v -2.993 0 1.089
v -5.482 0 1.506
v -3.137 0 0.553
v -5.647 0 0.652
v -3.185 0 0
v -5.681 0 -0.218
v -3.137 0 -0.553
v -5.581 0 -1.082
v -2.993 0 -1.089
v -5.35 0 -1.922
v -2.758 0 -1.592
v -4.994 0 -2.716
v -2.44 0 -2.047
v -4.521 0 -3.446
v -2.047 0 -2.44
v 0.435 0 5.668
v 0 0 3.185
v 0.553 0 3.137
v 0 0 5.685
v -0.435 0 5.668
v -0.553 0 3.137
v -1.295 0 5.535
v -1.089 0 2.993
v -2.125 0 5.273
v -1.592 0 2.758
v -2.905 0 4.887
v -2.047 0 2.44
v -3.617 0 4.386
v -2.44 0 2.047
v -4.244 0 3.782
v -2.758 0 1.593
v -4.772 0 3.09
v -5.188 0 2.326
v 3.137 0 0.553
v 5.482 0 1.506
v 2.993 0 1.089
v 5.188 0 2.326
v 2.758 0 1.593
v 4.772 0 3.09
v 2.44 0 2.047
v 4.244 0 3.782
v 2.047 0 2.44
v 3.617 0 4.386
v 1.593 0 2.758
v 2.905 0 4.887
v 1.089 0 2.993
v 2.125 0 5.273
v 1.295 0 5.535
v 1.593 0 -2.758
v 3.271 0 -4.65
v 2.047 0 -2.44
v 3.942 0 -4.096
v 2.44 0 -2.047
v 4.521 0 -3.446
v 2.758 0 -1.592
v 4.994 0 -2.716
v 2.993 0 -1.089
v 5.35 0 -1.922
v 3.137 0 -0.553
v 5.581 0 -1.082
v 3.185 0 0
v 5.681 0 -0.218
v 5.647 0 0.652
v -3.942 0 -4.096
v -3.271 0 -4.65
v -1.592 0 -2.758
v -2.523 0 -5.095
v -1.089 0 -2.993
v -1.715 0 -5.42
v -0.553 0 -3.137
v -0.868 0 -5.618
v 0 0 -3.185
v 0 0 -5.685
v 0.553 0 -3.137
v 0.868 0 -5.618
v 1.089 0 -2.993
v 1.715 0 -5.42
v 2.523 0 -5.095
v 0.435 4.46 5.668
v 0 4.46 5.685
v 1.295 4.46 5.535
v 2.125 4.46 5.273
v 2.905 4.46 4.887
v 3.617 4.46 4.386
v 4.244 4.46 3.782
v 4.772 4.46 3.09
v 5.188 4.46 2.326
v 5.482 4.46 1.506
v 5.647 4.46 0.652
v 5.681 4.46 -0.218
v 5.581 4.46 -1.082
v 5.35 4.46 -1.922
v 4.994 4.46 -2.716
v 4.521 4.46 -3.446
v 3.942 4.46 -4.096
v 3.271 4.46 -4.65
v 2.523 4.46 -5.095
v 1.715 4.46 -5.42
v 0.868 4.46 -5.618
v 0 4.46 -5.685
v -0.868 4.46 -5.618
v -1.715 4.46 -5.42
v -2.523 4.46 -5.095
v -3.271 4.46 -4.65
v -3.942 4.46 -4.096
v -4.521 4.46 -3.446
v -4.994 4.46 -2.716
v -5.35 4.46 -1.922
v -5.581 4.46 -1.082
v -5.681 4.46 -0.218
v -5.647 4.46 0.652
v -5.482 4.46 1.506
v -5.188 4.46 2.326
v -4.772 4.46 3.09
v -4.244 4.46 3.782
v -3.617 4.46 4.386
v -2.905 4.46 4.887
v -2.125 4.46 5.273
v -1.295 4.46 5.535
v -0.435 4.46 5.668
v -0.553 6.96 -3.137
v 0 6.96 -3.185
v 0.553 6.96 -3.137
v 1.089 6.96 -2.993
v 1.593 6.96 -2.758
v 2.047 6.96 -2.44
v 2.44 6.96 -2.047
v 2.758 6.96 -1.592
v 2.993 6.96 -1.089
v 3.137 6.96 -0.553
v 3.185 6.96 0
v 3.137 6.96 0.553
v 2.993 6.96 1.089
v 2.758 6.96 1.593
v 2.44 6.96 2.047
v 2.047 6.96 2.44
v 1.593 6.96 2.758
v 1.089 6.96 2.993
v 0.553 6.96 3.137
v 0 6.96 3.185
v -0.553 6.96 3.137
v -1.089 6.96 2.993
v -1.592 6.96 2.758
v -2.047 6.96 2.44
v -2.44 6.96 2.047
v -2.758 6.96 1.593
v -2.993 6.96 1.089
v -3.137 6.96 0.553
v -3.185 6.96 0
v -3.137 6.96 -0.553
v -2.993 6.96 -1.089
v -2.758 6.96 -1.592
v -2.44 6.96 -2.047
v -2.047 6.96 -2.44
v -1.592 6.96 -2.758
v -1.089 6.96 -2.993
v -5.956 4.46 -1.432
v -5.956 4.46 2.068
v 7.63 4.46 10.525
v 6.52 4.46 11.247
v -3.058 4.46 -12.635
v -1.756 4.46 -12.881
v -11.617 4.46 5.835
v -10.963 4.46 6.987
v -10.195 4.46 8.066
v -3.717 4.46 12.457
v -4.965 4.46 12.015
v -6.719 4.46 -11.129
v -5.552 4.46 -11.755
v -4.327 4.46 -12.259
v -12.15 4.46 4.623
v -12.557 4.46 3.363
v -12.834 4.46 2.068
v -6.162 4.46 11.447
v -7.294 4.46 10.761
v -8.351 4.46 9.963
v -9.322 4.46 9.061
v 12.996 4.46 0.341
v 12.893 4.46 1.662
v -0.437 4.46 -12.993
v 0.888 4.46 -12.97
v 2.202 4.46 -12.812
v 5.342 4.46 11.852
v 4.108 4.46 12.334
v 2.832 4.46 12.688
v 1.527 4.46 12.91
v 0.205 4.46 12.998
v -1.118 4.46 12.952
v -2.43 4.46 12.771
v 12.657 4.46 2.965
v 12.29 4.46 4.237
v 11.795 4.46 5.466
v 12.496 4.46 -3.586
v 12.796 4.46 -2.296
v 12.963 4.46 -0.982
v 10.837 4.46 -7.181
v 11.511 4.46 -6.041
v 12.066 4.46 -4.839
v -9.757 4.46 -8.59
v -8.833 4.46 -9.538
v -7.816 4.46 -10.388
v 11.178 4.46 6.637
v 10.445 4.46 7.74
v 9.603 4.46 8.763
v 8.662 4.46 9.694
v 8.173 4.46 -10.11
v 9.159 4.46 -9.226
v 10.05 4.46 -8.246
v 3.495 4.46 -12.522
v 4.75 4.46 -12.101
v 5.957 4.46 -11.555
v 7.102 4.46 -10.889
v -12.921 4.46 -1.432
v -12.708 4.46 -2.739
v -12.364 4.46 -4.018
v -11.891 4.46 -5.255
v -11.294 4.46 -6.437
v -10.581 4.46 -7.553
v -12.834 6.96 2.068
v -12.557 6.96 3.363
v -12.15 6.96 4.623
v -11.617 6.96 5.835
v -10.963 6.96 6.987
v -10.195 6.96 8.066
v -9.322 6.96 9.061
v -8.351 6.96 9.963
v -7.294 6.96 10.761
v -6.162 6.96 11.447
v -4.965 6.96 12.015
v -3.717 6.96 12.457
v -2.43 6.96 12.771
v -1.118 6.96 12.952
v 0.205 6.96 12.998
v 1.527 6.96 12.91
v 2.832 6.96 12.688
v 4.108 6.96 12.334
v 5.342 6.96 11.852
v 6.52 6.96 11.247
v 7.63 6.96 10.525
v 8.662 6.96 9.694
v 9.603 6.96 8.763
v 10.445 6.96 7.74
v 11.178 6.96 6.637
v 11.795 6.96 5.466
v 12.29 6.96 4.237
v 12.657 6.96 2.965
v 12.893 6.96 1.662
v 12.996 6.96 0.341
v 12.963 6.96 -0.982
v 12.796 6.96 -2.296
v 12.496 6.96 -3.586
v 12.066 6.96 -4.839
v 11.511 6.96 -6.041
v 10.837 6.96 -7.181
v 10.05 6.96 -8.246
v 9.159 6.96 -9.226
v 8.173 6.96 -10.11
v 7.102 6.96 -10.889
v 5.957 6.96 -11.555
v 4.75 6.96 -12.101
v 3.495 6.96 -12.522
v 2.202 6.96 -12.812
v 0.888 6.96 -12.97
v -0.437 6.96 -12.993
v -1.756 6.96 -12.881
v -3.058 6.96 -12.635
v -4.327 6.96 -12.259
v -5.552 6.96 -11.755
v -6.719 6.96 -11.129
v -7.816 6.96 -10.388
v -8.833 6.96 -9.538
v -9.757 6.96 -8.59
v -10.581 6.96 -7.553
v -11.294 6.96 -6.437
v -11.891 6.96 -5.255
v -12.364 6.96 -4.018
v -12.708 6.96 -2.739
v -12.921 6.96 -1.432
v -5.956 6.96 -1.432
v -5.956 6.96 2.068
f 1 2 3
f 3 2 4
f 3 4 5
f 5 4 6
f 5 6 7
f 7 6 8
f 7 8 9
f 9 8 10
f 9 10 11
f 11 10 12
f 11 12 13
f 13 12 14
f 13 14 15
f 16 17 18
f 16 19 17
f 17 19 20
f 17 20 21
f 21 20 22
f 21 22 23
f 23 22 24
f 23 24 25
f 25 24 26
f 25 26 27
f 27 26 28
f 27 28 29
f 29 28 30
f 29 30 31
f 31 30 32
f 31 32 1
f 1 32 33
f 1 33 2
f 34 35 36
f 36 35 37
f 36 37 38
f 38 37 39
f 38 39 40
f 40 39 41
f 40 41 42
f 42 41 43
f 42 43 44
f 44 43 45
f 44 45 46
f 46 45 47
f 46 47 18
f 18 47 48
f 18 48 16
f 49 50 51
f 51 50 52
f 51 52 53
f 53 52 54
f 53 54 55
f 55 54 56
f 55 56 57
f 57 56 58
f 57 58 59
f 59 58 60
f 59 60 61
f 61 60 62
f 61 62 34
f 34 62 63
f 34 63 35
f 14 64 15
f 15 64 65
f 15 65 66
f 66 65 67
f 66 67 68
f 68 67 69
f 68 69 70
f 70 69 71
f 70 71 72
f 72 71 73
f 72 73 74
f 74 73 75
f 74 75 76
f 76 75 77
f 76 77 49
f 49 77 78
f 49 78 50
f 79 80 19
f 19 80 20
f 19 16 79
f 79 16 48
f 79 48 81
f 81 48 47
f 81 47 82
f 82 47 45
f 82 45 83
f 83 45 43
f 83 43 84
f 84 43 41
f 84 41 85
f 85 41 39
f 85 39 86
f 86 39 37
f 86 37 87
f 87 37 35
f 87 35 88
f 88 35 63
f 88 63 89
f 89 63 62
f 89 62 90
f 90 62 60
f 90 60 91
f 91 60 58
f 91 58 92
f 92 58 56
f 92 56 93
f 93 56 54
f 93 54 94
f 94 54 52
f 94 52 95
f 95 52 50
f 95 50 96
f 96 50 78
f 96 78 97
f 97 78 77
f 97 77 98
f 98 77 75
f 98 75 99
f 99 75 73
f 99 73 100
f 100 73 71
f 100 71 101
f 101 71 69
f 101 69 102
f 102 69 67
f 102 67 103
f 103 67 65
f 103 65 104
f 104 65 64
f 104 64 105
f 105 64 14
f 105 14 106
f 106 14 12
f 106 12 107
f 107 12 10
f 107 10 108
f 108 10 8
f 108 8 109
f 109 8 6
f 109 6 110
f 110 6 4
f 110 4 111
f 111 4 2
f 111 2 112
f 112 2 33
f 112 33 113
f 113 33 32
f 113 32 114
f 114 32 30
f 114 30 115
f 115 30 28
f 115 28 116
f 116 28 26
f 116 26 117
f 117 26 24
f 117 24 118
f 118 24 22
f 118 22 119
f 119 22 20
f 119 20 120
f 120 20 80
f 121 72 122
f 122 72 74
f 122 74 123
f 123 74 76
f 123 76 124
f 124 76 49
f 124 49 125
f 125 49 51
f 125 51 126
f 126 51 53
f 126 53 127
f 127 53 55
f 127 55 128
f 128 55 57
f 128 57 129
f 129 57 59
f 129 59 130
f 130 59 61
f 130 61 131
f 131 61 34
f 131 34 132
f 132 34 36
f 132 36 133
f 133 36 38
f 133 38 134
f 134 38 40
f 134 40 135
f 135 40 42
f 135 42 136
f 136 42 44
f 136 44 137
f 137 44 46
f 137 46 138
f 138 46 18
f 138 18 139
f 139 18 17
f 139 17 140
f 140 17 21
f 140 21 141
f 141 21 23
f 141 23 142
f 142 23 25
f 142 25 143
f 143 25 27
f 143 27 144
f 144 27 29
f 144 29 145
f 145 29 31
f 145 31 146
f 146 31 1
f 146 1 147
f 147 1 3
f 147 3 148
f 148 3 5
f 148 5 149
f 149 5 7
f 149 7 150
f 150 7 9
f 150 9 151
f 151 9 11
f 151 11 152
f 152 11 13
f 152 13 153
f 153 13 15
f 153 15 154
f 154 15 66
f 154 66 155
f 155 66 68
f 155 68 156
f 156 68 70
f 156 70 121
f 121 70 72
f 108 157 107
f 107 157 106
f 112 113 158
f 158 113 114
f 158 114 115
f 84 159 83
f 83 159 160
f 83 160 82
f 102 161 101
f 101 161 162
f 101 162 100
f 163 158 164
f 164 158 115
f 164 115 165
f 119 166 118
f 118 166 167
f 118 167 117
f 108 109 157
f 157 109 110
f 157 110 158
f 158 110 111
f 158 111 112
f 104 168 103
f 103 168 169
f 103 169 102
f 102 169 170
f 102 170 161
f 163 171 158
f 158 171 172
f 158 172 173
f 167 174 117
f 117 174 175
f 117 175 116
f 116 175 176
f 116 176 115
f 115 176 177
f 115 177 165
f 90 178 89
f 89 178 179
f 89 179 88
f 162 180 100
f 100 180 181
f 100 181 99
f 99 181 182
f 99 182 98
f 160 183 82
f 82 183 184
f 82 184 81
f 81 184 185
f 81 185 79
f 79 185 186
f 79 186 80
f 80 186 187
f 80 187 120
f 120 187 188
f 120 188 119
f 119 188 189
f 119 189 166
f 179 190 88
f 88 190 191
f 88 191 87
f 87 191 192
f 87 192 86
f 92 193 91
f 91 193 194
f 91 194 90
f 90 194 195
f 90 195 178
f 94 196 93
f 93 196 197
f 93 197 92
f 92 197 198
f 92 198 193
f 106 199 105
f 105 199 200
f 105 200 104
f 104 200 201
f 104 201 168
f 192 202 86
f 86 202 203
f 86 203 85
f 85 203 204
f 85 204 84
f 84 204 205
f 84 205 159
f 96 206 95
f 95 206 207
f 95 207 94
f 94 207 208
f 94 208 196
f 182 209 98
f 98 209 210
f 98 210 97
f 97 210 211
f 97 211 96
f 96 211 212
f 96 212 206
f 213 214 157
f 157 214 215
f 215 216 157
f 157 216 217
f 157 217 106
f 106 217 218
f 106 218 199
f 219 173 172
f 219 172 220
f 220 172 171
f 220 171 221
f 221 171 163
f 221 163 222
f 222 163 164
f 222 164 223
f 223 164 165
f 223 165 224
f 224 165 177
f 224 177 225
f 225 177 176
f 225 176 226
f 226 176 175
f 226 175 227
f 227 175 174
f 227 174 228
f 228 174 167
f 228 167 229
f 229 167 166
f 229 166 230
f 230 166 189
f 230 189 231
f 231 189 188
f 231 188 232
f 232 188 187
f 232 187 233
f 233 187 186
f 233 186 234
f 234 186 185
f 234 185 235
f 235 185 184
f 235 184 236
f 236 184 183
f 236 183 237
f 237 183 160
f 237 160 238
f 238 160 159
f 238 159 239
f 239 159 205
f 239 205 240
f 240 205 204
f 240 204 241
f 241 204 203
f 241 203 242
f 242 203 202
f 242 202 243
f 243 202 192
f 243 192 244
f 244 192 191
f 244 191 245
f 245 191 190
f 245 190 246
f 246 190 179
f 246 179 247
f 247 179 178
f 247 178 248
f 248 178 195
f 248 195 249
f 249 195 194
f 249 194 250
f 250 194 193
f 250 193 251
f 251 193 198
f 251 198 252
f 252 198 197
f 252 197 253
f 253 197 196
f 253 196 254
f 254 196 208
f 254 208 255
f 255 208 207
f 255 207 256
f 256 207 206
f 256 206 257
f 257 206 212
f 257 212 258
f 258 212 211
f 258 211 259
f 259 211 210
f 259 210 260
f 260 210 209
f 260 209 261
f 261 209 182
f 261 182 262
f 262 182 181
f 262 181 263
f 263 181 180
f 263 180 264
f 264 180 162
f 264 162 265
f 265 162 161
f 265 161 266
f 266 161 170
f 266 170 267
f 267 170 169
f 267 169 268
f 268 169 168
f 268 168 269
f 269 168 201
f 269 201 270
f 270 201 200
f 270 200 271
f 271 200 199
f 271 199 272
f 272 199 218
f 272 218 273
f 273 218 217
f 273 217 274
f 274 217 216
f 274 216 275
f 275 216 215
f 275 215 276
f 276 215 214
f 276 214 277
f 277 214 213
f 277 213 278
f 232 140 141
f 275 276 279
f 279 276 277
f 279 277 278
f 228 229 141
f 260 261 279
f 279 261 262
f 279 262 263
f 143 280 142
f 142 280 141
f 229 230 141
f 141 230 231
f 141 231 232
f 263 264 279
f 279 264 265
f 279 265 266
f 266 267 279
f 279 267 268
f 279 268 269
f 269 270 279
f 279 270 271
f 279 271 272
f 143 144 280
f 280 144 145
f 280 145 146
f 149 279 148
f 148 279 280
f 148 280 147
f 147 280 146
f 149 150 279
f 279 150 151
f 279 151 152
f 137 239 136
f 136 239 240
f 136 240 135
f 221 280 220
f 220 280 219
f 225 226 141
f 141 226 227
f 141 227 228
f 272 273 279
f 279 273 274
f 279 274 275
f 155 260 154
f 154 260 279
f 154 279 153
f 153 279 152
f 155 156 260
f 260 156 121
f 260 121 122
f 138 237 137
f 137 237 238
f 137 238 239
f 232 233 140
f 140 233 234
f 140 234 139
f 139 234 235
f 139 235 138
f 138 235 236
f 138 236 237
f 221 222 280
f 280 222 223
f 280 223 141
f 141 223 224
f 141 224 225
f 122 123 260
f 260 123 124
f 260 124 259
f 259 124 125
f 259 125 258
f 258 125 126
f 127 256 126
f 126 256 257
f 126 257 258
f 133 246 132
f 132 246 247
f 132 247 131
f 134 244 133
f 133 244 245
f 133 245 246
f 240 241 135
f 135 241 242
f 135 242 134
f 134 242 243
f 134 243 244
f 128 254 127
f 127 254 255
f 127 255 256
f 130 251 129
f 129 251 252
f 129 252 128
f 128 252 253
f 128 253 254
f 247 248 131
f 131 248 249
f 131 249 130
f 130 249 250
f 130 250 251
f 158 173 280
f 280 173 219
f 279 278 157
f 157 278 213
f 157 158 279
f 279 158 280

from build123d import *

# Parameters (mm, degrees)
SKETCH1_R           = 5.685
SKETCH1_R_2         = 3.185
BOSS_EXTRUDE1_DEPTH = 4.46
SKETCH2_R           = 13
BOSS_EXTRUDE2_DEPTH = 2.5
SKETCH3_R           = 3.185
CUT_EXTRUDE1_DEPTH  = 2.5
SKETCH4_W           = 8.515099108
SKETCH4_H           = 3.5
CUT_EXTRUDE2_DEPTH  = 10


with BuildPart() as part:
    # Sketch1 → Boss-Extrude1 (new body)
    with BuildSketch(Plane(origin=(0, 0, 0), x_dir=(1, 0, 0), z_dir=(0, 1, 0))):
        with Locations(Location((0, 0, 0), (0, 0, 270))):
            Circle(SKETCH1_R)
        with Locations(Location((0, 0, 0), (0, 0, 270))):
            Circle(SKETCH1_R_2, mode=Mode.SUBTRACT)
    extrude(amount=BOSS_EXTRUDE1_DEPTH)

    # Sketch2 → Boss-Extrude2 (add)
    with BuildSketch(Plane(origin=(0, 4.46, 0), x_dir=(1, 0, 0), z_dir=(0, 1, 0))):
        with Locations(Location((0, 0, 0), (0, 0, 270))):
            Circle(SKETCH2_R)
    extrude(amount=BOSS_EXTRUDE2_DEPTH)

    # Sketch3 → Cut-Extrude1 (cut)
    with BuildSketch(Plane.XZ.offset(-4.46)):
        with Locations(Location((0, 0, 0), (0, 0, 270))):
            Circle(SKETCH3_R)
    extrude(amount=-CUT_EXTRUDE1_DEPTH, mode=Mode.SUBTRACT)

    # Sketch4 → Cut-Extrude2 (cut)
    with BuildSketch(Plane.XZ.offset(-4.46)):
        with Locations((-10.213773727, 0.31798138)):
            Rectangle(SKETCH4_W, SKETCH4_H)
    extrude(amount=-CUT_EXTRUDE2_DEPTH, mode=Mode.SUBTRACT)


solid = part.part
